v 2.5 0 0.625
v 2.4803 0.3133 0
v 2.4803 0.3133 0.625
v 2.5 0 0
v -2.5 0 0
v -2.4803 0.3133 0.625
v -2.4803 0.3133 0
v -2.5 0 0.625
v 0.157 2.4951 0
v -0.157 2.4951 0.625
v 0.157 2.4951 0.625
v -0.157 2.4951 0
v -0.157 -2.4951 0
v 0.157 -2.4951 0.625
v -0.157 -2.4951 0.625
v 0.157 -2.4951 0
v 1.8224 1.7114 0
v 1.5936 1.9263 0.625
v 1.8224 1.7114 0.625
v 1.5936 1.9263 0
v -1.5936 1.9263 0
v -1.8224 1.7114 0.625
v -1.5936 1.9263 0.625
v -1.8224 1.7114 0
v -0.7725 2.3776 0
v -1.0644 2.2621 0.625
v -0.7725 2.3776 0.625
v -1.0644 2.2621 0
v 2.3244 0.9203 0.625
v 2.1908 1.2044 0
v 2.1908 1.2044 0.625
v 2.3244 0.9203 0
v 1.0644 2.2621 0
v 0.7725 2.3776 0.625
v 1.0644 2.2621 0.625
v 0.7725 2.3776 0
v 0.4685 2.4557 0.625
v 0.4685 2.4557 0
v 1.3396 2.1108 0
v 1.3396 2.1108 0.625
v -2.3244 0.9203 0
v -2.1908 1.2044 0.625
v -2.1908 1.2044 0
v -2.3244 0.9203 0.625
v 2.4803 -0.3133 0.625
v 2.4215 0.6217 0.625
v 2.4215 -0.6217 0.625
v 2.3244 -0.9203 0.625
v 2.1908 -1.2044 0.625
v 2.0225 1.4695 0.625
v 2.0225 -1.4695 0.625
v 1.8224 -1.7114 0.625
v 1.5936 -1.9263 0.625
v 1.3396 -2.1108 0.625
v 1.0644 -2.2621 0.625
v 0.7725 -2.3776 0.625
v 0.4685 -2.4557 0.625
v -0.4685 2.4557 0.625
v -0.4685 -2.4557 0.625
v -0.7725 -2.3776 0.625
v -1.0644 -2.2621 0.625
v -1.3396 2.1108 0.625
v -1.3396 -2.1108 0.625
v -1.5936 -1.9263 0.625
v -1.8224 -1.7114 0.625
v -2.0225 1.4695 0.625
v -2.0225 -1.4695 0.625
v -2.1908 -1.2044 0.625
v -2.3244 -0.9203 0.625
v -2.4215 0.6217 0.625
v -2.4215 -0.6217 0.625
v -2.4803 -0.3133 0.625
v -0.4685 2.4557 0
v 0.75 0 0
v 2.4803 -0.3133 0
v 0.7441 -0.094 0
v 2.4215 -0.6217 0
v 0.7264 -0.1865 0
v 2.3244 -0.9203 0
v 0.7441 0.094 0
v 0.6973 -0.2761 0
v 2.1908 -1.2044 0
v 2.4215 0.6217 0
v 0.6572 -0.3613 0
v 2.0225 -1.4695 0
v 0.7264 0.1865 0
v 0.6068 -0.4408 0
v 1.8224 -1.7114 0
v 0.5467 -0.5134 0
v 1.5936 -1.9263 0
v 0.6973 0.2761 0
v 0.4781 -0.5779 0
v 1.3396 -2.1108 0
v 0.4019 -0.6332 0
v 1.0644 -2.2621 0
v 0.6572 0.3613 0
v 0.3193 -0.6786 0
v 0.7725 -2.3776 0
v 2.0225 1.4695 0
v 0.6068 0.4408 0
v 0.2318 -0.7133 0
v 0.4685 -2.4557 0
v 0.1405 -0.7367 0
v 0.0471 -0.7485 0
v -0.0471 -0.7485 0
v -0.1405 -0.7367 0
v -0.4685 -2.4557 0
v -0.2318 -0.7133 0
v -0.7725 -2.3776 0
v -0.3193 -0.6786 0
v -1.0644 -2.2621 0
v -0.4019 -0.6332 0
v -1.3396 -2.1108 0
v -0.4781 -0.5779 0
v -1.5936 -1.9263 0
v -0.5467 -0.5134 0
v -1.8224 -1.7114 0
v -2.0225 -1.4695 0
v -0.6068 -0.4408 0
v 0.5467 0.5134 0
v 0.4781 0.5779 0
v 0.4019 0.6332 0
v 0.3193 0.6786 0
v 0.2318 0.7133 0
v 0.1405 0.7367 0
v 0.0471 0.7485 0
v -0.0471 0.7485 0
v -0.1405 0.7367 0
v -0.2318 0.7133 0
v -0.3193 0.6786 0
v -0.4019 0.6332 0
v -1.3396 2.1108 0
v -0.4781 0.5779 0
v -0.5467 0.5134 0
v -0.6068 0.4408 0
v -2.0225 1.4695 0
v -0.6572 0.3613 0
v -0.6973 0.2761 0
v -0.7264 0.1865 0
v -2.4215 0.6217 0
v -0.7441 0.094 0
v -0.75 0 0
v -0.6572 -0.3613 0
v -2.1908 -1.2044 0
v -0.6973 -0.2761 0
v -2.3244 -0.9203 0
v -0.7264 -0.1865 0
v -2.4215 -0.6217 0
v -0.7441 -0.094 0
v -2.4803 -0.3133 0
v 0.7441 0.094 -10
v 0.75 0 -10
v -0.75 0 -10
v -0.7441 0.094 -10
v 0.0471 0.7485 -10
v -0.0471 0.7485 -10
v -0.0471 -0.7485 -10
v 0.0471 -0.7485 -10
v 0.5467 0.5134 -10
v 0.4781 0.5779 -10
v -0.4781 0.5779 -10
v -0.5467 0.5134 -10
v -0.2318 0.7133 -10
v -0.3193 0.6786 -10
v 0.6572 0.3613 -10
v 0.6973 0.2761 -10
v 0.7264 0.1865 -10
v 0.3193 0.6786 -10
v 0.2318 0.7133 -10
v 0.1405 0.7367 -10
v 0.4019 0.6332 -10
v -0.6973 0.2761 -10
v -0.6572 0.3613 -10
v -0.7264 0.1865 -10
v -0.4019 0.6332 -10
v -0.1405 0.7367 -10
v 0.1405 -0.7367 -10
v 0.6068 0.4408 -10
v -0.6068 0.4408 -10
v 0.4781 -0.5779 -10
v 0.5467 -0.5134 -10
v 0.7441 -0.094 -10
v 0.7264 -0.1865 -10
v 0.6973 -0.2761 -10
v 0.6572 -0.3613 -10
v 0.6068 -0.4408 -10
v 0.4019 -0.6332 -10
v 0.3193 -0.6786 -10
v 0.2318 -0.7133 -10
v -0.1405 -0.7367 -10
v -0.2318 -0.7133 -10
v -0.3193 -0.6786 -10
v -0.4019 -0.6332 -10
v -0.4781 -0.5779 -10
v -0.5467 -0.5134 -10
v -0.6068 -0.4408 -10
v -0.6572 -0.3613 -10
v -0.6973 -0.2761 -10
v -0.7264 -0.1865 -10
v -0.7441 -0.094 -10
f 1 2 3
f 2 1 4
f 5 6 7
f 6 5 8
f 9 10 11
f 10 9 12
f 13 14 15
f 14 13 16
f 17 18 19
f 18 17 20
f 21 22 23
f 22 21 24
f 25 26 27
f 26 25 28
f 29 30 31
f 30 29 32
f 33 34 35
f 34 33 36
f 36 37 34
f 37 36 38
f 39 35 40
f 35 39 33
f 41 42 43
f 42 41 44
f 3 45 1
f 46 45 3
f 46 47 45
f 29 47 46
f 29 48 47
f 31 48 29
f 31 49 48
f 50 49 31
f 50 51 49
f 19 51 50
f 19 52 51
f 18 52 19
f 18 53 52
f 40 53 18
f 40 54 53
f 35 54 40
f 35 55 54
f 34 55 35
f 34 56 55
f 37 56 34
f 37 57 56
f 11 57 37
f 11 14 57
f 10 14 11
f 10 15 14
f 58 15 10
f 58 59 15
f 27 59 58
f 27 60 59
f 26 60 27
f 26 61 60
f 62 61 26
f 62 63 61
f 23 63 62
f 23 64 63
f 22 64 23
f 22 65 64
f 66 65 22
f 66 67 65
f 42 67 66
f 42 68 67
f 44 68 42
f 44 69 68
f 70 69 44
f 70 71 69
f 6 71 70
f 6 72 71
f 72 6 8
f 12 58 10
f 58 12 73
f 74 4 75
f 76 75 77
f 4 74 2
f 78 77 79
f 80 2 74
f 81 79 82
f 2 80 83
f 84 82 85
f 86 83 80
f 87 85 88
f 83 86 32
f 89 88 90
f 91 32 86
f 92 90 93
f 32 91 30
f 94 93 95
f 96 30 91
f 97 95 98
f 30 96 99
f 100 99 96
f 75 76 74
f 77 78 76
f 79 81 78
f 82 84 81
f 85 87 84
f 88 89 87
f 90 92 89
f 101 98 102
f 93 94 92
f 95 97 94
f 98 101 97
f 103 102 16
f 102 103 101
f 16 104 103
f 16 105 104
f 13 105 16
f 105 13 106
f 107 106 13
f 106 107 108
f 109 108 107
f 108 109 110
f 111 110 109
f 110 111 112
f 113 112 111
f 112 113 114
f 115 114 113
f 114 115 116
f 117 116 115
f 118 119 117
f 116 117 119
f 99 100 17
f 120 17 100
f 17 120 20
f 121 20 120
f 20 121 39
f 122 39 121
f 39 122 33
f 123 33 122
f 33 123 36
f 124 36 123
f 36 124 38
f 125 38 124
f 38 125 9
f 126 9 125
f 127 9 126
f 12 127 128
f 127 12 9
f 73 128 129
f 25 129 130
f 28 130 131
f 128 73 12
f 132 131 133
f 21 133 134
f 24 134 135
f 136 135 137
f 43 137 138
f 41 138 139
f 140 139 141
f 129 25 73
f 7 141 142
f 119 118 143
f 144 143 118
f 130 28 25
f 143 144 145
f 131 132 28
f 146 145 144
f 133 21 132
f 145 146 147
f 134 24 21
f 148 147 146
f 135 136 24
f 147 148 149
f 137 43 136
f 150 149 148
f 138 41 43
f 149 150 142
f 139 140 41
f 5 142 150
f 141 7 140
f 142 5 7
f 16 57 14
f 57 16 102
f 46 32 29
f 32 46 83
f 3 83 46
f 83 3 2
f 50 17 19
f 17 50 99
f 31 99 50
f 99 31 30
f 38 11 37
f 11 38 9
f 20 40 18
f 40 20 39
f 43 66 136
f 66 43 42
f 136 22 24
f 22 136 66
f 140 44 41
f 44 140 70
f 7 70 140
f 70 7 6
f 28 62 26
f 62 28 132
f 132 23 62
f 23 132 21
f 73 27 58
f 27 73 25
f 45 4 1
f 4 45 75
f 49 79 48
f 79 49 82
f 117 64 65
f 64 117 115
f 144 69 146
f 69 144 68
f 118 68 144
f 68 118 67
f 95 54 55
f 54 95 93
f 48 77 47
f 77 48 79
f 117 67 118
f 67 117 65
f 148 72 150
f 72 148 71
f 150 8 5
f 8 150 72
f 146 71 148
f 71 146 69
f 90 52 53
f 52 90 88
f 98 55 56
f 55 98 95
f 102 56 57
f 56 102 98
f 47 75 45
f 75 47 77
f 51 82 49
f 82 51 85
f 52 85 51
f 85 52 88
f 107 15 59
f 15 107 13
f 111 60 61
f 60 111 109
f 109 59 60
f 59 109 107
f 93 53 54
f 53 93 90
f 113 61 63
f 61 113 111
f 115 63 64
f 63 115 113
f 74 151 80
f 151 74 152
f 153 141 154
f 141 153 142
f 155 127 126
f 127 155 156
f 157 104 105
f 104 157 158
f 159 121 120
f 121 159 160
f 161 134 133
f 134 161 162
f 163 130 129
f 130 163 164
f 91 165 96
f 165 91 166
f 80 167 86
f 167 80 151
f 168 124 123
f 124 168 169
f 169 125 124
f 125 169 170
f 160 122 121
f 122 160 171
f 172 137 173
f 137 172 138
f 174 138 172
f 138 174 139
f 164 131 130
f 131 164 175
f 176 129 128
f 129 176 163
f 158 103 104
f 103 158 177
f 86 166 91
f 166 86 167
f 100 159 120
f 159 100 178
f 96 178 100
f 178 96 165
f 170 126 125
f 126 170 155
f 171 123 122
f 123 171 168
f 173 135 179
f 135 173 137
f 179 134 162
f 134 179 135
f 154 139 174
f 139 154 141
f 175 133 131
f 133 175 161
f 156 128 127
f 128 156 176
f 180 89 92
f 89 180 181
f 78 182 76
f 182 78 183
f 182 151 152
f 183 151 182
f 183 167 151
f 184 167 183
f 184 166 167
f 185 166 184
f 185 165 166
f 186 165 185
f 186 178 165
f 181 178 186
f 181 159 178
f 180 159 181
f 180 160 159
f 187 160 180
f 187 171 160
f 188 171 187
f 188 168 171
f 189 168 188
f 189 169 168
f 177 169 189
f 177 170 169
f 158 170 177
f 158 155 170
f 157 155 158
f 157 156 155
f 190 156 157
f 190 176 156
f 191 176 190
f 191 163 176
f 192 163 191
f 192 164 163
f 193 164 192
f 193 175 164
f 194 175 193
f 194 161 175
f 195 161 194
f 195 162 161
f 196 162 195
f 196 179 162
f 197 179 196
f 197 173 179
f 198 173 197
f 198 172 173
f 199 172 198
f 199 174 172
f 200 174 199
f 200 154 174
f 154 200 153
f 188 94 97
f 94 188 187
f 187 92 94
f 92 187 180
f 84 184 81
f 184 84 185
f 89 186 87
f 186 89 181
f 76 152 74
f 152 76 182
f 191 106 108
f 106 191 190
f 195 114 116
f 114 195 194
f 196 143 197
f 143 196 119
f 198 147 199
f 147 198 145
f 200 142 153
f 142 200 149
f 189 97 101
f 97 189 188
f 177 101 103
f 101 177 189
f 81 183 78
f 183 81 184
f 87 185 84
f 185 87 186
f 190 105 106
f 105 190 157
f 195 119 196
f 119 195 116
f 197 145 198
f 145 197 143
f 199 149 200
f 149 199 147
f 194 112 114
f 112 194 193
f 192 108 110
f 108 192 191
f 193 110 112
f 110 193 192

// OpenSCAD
$fn = 50;


difference() {
	union() {
		translate(v = [0, 0, 0]) {
			rotate(a = [0, 0, 0]) {
				cylinder(h = 0.6250000000, r = 2.5000000000);
			}
		}
		translate(v = [0, 0, -10]) {
			rotate(a = [0, 0, 0]) {
				cylinder(h = 10, r = 0.7500000000);
			}
		}
	}
	union();
}
